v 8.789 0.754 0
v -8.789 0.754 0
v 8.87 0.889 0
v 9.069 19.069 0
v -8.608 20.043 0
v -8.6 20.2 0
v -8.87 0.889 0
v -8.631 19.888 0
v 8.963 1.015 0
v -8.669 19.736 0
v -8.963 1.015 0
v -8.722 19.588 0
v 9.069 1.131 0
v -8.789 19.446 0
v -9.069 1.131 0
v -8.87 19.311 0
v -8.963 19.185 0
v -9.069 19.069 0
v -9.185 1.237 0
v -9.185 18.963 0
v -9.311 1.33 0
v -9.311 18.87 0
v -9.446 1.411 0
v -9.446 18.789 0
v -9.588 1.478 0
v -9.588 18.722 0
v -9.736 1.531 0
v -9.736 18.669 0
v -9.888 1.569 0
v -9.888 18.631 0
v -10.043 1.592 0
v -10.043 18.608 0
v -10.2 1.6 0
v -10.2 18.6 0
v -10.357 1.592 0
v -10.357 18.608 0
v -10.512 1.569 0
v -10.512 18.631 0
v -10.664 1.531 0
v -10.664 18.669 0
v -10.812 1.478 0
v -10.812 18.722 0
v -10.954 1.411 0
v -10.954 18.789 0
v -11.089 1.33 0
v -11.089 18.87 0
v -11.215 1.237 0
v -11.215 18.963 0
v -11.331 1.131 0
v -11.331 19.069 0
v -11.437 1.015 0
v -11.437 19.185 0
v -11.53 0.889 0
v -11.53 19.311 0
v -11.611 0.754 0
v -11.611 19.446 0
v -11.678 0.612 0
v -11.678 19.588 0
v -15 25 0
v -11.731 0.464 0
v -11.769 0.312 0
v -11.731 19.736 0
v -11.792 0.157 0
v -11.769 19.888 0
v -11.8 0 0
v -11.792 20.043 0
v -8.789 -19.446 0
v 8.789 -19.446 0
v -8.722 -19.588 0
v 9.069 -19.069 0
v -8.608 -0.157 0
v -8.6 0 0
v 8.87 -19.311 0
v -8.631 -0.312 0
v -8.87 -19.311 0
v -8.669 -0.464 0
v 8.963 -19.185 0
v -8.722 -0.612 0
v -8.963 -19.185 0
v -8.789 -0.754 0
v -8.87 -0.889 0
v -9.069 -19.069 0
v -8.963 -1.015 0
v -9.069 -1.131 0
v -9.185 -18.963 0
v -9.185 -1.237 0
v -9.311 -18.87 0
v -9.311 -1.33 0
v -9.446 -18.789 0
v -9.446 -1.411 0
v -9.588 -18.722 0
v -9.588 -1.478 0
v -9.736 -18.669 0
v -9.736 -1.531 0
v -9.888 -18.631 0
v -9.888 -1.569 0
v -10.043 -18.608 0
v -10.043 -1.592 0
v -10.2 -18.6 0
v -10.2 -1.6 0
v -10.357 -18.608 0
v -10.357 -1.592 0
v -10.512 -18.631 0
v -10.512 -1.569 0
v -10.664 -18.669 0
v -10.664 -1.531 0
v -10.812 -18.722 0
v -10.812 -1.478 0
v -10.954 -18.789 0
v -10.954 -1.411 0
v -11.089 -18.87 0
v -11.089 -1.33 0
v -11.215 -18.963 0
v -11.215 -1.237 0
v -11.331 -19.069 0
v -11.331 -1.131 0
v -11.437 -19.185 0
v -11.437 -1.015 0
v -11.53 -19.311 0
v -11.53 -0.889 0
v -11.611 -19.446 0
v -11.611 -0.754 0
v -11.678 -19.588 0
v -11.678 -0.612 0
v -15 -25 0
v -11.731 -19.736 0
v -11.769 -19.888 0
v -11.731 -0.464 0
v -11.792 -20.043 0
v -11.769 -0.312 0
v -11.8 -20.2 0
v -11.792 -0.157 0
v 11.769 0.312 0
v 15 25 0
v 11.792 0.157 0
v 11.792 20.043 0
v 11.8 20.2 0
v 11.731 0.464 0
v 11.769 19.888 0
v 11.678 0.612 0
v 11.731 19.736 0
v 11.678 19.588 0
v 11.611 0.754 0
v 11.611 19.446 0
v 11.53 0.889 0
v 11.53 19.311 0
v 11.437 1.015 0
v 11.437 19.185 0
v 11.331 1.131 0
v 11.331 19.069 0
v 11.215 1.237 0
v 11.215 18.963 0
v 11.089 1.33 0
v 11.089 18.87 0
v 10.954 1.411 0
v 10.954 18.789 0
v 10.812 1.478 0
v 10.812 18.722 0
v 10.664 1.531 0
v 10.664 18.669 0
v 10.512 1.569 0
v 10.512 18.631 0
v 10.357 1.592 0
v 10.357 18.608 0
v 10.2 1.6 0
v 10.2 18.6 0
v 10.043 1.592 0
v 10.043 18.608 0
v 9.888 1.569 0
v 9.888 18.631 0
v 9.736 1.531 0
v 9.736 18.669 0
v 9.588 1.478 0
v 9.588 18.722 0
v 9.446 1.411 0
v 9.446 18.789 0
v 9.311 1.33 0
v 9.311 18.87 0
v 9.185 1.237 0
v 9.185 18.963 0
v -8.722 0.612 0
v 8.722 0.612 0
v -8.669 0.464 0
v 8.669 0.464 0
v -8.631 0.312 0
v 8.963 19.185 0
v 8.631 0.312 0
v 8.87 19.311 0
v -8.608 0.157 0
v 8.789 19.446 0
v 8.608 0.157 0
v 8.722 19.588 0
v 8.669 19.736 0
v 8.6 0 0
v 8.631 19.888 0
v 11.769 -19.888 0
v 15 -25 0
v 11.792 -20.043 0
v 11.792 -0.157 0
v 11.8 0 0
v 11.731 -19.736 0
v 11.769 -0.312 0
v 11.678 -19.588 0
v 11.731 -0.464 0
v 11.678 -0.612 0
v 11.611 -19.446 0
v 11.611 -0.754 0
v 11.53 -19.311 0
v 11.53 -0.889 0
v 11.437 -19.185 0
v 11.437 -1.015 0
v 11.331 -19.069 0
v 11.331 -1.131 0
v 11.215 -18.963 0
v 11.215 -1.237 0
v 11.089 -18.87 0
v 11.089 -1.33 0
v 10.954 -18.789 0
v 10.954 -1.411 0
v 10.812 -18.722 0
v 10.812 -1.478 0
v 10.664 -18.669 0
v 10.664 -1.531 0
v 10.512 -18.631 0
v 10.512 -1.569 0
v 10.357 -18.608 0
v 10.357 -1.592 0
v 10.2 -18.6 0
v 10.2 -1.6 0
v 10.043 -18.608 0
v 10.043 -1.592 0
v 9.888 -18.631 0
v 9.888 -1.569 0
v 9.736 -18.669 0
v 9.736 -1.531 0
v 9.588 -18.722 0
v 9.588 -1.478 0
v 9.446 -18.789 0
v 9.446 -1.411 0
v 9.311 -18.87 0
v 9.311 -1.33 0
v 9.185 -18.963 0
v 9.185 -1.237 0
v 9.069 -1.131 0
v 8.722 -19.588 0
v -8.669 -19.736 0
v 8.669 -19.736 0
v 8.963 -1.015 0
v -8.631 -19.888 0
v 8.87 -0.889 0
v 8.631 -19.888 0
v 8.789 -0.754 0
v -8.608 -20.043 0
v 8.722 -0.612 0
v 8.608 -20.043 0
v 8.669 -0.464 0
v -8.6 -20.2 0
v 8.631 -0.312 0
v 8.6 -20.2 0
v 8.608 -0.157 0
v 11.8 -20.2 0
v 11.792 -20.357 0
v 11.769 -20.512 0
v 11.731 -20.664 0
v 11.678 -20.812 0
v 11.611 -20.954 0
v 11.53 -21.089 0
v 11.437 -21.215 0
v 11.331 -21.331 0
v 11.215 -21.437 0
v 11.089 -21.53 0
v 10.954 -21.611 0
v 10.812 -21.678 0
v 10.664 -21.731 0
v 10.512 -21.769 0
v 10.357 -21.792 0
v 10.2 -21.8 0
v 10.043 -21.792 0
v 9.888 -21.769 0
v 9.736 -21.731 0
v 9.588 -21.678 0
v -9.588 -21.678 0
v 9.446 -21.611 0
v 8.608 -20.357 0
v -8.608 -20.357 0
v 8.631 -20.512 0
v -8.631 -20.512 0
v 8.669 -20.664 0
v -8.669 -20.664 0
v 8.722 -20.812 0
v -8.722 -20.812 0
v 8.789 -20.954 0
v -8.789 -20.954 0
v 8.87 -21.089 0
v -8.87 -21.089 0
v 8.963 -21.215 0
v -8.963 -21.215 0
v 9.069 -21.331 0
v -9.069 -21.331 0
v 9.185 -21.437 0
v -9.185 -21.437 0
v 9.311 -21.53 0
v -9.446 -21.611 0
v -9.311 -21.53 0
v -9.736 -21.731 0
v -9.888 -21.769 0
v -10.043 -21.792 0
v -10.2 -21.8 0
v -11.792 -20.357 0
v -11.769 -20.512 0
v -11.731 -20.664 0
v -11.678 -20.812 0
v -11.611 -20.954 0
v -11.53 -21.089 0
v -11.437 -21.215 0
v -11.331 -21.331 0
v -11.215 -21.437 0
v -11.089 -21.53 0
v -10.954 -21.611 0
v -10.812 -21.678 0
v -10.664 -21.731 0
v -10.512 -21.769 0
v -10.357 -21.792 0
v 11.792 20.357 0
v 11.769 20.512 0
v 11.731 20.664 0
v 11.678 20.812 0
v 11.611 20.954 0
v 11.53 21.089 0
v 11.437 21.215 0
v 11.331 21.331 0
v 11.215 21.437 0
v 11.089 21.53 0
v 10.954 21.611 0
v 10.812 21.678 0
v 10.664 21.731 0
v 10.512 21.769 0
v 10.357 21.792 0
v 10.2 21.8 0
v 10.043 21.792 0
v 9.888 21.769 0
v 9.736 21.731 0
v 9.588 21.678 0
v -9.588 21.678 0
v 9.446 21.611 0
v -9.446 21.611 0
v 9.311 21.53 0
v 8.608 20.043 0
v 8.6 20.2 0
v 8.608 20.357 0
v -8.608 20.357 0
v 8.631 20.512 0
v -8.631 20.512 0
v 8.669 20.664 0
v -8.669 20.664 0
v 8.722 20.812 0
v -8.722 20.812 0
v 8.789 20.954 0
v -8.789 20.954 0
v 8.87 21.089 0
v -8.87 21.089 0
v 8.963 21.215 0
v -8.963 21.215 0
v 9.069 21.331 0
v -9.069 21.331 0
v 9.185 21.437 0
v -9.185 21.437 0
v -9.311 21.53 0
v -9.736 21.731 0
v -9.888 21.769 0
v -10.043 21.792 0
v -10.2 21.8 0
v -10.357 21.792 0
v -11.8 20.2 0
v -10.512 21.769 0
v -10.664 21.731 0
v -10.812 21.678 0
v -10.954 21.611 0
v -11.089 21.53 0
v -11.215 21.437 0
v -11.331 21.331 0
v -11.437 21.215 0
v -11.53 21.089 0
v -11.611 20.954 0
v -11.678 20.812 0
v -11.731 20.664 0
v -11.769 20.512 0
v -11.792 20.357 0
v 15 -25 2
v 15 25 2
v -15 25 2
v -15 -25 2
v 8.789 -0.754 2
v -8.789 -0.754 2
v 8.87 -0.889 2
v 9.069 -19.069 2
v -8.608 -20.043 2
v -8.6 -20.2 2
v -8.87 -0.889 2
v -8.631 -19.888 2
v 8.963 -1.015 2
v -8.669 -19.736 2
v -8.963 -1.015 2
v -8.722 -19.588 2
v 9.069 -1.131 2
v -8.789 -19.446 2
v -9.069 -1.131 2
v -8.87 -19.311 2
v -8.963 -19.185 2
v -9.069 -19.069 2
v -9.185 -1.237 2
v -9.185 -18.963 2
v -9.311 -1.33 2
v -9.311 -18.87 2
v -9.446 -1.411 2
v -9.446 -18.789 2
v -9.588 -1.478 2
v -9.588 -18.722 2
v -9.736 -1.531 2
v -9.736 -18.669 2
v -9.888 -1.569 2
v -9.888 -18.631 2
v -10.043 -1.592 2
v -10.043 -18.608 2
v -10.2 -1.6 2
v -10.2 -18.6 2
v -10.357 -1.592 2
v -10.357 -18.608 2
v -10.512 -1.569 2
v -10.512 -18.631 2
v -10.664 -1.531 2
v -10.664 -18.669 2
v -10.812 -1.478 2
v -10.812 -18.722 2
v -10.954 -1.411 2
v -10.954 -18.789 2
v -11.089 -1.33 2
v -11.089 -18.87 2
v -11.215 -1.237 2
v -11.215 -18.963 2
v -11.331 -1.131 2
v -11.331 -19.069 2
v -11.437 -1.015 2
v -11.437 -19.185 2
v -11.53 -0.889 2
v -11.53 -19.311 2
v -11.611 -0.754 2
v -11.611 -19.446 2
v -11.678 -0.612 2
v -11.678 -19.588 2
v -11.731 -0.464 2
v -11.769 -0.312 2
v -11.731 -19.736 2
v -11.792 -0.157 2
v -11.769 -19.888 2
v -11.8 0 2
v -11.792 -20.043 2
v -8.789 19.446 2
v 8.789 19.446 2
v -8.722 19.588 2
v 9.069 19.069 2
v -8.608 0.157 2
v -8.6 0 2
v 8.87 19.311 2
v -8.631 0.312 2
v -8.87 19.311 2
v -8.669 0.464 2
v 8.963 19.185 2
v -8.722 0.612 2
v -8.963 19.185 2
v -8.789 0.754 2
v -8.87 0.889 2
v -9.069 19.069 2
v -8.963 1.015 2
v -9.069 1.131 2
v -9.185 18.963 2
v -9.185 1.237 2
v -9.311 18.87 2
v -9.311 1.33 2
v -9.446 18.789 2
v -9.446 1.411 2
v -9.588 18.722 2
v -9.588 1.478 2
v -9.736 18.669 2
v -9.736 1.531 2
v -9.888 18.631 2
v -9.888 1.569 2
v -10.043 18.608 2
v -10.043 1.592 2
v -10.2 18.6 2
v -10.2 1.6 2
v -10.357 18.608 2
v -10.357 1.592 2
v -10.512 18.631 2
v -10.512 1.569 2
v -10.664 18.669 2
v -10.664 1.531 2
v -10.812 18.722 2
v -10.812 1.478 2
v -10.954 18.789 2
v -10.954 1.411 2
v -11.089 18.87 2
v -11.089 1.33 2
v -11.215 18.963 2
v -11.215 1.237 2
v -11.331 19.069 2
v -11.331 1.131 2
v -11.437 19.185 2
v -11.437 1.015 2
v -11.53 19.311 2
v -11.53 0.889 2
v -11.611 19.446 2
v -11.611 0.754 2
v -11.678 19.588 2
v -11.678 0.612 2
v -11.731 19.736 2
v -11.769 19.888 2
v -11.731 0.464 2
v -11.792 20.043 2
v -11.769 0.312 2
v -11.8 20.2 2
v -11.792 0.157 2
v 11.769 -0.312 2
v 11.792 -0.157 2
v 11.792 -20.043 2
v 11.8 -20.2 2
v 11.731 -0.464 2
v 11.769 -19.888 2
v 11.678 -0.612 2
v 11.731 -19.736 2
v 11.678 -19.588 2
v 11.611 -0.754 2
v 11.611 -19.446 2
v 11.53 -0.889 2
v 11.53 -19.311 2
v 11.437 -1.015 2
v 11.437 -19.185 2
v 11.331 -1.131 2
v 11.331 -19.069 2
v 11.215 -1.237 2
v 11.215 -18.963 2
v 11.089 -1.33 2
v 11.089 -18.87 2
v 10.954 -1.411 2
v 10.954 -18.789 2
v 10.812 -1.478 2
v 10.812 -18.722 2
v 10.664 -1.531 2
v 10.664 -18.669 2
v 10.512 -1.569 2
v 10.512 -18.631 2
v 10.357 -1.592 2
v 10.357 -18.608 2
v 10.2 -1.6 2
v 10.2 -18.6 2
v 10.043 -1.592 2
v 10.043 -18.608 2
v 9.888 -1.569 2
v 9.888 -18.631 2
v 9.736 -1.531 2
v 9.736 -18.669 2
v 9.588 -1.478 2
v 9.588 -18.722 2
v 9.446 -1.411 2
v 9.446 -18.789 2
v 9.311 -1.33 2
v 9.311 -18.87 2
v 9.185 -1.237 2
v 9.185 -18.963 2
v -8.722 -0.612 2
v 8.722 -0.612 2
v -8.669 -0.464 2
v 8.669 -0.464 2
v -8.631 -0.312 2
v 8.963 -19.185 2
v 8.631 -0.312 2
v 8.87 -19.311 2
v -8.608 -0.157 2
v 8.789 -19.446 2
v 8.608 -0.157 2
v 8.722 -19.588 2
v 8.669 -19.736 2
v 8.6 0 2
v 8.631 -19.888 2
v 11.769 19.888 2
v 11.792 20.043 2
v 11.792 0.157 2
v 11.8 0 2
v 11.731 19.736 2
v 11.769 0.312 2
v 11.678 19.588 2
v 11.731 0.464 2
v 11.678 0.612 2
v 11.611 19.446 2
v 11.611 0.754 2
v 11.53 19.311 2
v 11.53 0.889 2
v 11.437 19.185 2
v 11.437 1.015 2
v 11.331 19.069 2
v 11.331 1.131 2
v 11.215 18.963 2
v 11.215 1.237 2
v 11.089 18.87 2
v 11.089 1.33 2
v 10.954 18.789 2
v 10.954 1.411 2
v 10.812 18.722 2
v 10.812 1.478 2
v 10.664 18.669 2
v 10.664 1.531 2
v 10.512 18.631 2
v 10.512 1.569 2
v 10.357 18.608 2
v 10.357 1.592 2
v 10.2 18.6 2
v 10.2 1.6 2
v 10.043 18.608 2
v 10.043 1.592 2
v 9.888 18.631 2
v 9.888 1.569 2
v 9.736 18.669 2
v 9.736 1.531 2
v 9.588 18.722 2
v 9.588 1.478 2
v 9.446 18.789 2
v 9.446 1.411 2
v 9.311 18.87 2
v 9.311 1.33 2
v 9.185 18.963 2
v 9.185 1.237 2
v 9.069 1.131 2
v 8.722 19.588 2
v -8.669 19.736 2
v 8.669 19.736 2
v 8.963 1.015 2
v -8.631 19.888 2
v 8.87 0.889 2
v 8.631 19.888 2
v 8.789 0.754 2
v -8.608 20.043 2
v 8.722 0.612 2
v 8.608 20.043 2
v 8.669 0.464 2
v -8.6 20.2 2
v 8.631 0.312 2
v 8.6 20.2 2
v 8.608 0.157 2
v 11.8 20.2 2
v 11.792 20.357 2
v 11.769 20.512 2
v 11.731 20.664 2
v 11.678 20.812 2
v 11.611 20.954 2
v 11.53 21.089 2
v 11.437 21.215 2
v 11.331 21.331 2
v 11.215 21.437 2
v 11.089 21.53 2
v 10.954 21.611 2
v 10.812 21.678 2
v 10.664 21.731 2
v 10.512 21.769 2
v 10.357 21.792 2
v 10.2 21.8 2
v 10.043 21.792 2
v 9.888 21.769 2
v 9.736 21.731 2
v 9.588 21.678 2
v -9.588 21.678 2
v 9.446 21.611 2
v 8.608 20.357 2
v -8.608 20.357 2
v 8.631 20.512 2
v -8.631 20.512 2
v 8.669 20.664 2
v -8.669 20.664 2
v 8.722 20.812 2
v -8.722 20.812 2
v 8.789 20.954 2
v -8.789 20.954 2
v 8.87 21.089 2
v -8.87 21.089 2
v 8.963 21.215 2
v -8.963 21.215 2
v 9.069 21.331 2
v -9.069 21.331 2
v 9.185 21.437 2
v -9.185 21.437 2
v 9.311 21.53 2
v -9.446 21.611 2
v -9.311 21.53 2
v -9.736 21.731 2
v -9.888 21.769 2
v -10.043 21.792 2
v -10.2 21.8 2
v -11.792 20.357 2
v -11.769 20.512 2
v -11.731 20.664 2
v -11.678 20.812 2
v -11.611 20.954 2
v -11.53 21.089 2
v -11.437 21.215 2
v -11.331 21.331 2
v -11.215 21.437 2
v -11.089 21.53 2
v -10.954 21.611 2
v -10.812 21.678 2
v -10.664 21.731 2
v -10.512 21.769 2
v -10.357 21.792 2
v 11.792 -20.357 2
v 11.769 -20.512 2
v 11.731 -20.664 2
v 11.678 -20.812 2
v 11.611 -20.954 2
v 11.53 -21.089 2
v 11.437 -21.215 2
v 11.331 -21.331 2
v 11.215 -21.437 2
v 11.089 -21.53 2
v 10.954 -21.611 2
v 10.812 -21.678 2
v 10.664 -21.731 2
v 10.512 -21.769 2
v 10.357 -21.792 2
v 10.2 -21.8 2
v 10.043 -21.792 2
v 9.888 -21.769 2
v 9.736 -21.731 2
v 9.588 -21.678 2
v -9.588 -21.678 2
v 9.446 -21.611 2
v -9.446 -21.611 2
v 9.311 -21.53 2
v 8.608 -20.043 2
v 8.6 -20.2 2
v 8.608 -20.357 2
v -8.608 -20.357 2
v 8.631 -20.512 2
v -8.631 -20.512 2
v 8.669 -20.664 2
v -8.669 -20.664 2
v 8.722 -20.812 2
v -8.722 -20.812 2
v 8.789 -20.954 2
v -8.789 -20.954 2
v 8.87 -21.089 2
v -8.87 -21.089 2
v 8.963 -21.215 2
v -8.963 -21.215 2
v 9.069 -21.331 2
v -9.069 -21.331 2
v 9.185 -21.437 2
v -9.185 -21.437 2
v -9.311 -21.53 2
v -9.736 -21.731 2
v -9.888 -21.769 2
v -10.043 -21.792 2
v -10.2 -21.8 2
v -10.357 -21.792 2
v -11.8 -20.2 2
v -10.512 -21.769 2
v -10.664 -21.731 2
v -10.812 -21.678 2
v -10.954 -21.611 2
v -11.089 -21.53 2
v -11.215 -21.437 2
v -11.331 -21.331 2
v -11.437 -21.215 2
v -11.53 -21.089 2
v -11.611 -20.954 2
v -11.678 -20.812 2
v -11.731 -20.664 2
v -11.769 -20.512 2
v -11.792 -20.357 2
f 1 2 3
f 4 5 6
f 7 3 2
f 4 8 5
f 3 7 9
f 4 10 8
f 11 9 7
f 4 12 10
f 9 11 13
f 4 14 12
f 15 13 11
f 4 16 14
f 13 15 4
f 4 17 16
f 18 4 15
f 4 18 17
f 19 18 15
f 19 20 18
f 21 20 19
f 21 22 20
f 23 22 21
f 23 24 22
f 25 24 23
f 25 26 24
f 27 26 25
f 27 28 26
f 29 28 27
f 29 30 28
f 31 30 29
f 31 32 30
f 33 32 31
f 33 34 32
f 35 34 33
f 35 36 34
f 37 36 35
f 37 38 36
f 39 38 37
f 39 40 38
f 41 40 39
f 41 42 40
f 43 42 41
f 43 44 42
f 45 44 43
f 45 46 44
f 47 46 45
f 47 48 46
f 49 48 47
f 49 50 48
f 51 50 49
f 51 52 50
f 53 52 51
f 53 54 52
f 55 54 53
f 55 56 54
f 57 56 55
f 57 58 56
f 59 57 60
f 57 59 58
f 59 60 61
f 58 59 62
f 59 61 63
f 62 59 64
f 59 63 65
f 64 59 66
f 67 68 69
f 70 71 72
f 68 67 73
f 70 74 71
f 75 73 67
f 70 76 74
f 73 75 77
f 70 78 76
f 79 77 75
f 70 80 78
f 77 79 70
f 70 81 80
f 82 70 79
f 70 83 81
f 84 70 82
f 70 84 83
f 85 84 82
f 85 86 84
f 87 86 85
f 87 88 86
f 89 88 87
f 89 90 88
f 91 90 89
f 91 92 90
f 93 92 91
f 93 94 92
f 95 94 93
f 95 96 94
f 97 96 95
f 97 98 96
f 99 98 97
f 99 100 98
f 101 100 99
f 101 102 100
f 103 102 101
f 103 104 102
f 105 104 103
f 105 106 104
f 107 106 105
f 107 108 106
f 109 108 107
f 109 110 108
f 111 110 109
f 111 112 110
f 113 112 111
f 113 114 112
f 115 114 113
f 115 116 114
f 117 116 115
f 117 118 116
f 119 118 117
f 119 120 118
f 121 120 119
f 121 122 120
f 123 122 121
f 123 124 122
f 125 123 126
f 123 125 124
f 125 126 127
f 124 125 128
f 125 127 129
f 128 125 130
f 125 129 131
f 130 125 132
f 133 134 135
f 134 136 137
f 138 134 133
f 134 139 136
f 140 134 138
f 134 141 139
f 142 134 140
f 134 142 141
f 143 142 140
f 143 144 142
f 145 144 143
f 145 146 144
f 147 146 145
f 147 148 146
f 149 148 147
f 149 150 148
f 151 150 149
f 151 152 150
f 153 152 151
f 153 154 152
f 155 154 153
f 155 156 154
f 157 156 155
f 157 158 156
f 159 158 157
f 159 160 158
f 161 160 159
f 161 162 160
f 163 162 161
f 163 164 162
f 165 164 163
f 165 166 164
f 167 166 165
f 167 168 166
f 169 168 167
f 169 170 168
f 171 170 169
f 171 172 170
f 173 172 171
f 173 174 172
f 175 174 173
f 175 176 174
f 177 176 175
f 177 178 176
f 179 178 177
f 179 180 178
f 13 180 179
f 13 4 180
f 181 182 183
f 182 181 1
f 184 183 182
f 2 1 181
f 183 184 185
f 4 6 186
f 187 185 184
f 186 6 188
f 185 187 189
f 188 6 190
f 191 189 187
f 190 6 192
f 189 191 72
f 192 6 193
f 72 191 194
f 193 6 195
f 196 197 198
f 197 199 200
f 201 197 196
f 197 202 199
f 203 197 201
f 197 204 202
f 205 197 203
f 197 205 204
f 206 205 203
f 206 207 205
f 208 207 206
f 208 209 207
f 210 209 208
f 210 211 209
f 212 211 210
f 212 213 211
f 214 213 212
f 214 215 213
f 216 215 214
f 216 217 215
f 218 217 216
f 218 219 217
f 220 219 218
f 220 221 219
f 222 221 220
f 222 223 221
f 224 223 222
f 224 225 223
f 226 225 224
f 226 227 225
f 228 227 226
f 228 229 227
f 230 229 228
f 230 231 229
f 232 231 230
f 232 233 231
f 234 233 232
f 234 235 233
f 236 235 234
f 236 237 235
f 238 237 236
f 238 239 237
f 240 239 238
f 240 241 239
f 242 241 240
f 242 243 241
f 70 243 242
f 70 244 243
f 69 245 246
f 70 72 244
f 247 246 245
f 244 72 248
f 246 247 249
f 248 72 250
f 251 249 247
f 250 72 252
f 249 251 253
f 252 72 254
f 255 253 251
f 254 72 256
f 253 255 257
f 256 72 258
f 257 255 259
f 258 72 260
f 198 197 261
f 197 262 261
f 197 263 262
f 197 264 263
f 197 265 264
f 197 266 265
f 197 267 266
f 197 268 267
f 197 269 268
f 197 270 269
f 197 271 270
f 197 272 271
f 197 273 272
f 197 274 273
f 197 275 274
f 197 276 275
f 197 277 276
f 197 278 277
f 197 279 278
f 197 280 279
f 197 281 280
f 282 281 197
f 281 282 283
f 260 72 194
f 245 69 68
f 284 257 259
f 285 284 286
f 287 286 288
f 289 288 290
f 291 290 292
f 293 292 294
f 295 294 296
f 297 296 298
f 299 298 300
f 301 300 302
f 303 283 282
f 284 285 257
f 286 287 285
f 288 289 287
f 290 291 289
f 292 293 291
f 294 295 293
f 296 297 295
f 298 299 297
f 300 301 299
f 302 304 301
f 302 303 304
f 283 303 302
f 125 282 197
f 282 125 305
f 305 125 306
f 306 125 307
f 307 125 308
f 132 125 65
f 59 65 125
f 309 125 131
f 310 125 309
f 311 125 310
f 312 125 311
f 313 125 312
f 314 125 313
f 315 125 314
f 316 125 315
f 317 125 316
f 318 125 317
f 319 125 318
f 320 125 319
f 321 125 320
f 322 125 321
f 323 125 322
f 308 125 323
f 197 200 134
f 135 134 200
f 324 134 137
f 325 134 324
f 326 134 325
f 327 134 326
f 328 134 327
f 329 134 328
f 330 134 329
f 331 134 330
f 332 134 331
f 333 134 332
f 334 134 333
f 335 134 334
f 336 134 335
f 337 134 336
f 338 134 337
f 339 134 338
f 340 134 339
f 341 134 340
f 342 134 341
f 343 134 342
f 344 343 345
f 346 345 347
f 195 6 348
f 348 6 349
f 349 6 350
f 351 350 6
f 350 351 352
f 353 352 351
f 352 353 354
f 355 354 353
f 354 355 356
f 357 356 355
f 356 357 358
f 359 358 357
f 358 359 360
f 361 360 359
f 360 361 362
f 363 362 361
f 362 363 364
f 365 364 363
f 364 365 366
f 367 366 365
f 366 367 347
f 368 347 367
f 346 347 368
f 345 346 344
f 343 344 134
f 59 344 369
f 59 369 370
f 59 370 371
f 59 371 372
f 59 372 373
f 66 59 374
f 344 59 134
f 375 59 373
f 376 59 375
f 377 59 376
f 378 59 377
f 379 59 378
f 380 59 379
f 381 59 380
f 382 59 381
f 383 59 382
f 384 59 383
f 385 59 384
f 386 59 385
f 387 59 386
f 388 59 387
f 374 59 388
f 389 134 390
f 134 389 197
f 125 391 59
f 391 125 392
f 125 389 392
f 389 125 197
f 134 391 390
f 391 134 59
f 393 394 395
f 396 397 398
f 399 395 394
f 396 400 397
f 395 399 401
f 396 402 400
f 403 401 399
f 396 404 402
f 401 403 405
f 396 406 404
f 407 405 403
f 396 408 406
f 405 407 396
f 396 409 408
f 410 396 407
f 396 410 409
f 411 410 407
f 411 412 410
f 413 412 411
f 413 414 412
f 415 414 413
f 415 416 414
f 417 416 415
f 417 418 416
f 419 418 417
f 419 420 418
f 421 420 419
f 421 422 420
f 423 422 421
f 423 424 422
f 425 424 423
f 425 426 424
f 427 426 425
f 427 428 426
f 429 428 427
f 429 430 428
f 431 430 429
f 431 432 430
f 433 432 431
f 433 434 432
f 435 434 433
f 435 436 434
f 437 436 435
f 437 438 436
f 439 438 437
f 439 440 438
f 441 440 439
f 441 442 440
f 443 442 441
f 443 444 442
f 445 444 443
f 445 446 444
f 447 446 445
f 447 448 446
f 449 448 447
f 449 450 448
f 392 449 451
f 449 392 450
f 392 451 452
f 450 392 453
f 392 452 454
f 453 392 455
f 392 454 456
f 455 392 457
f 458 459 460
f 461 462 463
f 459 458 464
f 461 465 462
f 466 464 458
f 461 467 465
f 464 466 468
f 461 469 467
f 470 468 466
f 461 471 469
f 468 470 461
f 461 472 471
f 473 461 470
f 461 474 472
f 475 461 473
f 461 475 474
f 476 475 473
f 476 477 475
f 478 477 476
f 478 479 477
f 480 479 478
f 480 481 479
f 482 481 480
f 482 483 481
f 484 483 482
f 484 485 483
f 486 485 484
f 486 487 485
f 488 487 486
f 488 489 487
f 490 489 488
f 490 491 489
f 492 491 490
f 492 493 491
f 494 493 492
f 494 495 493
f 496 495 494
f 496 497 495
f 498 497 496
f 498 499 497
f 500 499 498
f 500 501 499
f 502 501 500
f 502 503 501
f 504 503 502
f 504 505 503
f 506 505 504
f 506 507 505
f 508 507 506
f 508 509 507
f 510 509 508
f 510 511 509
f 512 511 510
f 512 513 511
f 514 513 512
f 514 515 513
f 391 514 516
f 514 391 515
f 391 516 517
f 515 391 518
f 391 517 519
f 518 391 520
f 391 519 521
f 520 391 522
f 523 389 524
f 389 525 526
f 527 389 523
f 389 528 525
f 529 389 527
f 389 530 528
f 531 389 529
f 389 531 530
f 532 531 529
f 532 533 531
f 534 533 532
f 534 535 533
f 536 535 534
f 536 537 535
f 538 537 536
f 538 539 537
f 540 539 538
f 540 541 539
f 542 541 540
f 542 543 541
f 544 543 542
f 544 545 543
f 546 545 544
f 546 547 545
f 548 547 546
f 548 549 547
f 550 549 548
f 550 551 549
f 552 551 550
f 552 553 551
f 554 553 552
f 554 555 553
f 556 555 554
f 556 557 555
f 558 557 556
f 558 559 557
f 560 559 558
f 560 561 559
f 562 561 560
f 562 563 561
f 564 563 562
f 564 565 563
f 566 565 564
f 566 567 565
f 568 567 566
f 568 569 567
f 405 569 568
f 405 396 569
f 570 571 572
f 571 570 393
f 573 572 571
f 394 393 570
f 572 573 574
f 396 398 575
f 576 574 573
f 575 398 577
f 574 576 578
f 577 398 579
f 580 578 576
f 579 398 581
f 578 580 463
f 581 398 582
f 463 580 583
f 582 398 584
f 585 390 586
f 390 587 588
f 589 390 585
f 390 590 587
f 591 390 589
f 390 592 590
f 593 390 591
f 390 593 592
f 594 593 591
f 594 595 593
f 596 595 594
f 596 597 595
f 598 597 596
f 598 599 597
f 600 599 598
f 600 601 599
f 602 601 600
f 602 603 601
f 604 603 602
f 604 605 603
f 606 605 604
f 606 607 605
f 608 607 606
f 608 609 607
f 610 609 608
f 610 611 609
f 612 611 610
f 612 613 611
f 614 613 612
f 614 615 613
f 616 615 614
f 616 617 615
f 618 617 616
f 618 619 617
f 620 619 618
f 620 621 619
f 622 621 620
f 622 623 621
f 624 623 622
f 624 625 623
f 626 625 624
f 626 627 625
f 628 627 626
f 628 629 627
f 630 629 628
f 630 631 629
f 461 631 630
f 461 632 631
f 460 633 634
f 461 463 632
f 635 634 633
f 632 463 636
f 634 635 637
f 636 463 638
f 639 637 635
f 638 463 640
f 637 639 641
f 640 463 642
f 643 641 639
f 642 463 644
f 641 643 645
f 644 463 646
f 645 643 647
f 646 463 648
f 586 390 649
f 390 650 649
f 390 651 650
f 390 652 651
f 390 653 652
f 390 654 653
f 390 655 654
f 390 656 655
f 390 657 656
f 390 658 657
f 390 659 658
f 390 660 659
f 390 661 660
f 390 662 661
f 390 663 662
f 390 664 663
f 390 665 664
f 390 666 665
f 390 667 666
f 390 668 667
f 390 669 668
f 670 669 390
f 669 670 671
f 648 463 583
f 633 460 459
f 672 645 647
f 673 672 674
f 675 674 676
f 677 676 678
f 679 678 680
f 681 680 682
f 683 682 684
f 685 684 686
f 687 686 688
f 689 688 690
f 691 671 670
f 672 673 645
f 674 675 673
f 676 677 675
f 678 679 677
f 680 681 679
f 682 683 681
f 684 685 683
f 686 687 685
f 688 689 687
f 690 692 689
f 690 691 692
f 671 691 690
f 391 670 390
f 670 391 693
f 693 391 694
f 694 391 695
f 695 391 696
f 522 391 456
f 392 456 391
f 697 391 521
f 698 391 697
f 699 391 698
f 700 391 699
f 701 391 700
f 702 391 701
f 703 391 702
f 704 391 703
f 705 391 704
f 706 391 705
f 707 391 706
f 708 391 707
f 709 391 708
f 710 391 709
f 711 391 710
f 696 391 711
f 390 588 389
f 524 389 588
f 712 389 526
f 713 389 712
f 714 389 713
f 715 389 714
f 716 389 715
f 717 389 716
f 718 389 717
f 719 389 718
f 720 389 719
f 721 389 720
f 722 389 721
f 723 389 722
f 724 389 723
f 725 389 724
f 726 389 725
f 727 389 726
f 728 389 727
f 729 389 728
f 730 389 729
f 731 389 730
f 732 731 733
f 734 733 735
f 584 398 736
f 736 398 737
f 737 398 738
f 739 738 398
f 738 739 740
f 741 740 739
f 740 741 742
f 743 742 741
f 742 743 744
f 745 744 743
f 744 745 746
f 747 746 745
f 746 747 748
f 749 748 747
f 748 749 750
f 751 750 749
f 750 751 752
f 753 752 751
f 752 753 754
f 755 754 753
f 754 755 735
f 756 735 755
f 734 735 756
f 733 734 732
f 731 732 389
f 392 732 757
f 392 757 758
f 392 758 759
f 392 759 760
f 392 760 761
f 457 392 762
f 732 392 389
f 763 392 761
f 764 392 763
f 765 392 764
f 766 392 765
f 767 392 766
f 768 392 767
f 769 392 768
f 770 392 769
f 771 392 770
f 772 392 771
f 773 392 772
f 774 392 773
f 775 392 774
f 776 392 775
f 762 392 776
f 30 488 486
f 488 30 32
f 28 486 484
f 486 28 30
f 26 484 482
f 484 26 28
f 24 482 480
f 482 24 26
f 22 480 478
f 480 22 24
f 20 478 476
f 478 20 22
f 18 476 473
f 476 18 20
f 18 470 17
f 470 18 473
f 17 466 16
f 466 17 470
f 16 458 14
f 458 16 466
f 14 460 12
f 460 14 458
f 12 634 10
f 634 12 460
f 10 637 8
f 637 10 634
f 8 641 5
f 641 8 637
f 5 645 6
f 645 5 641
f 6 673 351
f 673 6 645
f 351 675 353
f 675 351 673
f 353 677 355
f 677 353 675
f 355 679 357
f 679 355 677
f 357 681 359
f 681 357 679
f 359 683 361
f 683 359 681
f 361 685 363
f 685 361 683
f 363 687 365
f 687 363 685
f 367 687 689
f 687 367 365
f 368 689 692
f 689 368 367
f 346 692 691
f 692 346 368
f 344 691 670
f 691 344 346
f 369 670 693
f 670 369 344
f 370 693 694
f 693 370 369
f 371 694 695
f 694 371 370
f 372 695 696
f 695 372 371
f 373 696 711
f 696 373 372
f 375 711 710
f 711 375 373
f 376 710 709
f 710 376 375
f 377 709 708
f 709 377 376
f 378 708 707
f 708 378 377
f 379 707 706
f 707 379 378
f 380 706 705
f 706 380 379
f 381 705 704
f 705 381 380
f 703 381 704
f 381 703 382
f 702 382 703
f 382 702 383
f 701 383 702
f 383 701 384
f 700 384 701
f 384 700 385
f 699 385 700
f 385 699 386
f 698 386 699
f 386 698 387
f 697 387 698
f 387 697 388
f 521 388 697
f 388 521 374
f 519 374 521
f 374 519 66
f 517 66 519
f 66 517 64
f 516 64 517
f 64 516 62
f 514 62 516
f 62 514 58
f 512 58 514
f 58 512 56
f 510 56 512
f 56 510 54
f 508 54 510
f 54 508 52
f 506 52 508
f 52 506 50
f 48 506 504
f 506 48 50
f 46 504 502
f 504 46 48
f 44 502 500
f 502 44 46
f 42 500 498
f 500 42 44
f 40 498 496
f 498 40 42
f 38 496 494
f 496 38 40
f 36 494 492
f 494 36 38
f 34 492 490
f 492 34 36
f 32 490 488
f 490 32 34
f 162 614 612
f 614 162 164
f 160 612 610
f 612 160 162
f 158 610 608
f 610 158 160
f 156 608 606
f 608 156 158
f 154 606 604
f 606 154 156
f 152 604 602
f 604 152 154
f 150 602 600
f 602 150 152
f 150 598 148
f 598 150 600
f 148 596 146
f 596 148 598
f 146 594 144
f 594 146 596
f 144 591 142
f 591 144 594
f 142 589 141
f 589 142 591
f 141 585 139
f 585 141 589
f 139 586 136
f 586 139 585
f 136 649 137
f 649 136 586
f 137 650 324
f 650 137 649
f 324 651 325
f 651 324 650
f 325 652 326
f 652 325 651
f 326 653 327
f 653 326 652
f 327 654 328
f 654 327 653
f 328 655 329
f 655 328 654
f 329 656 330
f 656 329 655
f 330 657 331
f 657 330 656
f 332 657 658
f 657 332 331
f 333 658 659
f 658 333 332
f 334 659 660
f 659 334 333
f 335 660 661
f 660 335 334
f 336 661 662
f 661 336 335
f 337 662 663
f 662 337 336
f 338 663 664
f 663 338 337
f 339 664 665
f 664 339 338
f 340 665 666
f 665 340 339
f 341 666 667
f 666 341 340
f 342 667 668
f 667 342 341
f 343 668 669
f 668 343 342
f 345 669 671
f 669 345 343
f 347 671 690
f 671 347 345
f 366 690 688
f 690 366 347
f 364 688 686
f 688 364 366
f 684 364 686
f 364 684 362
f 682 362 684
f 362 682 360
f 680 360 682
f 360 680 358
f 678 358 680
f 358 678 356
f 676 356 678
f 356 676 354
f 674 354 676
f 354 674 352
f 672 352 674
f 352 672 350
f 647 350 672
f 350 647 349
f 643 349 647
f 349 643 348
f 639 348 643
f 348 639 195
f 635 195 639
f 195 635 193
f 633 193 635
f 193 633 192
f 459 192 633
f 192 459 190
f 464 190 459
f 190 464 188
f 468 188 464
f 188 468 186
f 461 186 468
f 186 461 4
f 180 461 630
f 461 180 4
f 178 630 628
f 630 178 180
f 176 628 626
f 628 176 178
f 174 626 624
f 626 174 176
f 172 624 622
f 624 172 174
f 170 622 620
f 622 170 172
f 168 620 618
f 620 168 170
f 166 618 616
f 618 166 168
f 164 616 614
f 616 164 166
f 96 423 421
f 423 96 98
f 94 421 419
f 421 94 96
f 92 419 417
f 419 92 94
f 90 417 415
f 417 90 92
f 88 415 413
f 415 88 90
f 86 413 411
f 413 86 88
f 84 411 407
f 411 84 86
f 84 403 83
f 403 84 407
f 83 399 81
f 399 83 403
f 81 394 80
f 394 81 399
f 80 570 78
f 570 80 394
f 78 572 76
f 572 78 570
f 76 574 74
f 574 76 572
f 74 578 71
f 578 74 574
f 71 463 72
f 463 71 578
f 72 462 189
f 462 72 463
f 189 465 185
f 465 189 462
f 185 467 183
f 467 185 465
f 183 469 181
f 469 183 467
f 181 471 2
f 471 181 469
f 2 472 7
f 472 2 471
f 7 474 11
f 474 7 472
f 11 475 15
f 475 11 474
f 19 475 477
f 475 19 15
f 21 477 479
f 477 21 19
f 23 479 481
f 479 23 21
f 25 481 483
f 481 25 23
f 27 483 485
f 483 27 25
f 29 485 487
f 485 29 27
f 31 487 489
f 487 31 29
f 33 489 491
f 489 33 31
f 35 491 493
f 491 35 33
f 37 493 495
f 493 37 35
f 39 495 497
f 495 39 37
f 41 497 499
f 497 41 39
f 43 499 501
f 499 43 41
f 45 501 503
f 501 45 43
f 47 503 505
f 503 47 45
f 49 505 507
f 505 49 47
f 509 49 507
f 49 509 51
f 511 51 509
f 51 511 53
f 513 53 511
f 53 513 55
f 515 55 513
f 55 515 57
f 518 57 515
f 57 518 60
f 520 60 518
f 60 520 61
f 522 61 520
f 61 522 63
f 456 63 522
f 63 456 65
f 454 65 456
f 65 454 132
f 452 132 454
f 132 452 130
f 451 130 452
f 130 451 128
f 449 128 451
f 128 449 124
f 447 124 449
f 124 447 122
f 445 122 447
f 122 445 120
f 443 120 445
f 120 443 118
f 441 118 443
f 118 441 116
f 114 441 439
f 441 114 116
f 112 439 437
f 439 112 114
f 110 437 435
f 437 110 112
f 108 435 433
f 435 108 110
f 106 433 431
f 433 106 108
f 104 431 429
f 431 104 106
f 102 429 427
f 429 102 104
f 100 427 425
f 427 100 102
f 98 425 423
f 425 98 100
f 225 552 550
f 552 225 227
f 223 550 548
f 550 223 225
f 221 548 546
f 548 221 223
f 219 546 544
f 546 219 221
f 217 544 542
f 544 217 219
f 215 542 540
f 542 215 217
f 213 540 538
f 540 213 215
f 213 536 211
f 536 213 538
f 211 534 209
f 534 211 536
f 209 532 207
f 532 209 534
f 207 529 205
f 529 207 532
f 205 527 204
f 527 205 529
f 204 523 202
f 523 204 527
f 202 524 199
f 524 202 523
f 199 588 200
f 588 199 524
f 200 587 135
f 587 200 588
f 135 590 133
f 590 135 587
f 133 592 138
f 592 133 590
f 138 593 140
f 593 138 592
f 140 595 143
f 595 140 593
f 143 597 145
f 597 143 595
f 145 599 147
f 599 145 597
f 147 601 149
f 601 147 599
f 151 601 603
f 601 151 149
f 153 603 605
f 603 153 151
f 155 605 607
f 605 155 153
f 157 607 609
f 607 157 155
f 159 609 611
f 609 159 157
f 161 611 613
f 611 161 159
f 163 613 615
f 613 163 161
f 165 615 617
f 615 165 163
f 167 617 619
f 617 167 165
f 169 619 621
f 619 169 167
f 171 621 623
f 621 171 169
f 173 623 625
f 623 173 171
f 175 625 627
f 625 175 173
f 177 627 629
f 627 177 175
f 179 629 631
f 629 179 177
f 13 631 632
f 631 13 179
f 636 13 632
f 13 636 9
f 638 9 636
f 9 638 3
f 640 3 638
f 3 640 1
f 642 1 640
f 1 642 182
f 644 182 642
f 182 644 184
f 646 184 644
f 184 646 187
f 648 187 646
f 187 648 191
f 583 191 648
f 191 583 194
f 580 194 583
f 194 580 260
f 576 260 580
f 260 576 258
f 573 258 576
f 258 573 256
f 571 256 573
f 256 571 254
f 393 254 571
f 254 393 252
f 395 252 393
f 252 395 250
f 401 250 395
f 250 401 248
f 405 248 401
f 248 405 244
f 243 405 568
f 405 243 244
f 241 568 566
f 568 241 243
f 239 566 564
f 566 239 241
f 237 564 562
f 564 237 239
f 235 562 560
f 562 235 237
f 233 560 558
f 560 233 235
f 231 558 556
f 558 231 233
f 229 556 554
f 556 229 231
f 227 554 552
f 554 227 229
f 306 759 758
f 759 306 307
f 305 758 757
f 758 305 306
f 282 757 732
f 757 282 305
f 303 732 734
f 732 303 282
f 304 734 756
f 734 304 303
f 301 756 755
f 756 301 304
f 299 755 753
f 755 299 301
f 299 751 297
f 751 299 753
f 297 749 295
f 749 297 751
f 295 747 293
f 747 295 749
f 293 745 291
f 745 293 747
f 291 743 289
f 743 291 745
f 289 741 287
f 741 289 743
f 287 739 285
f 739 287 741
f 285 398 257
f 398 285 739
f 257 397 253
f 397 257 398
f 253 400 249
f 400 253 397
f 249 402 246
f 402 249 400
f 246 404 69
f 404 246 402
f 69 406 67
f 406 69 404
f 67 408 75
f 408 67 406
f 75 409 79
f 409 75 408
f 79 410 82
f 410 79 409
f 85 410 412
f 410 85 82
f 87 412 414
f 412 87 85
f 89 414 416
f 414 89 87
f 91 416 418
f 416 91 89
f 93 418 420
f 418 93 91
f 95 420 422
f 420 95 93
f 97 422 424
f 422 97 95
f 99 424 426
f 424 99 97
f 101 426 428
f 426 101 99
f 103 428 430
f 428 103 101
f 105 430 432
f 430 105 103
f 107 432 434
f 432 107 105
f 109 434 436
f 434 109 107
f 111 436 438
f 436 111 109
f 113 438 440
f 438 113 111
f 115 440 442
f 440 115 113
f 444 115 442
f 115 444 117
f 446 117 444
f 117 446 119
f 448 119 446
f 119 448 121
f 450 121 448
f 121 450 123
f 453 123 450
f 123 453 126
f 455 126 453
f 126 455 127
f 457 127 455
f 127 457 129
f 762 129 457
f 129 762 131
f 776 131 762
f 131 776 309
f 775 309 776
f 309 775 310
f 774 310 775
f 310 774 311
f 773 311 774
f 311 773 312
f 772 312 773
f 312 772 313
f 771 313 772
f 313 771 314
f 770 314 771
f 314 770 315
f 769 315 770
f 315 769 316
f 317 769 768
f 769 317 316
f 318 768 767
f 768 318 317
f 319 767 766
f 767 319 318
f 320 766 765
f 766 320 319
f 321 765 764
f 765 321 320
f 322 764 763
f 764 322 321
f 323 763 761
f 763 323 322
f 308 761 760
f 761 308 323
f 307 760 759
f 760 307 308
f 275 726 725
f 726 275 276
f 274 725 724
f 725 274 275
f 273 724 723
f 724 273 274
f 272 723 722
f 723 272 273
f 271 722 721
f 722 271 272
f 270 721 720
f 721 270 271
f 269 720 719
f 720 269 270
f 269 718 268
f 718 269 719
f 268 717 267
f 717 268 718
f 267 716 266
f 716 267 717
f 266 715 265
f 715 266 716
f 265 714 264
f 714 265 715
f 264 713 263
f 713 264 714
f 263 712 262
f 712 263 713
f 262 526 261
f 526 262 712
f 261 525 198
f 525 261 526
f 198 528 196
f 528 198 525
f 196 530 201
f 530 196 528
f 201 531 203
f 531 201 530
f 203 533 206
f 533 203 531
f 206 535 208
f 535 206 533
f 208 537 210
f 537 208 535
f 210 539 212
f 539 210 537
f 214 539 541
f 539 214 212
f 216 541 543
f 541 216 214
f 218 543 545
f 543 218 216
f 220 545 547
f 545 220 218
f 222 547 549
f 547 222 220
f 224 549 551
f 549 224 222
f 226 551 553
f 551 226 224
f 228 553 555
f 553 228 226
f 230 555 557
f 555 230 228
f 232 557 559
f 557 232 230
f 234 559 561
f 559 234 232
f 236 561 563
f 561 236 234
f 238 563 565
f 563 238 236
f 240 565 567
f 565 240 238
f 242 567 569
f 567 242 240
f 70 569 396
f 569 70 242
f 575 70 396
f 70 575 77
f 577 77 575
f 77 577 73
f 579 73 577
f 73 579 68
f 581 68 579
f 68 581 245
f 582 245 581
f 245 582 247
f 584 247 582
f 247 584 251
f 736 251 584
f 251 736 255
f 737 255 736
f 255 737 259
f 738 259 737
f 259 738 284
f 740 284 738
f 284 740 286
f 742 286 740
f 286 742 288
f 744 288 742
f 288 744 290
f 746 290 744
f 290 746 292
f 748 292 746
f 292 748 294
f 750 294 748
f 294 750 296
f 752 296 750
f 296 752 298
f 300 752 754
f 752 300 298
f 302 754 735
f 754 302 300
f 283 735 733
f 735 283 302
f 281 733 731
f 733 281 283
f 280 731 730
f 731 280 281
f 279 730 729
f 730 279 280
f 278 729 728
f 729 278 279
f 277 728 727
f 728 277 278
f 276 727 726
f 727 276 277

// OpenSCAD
$fn = 64;

length = 50.00;
width = 30.00;
height = 2.00;

hole = 1.60;
hole_spacer = hole * 4;

module grid(x, y, width, height, center = true)
{
    x_space = width / (x - 1);
    y_space = height / (y - 1);
    translate(center ? [-(x_space * (x - 1))/2, -(y_space * (y - 1))/2, 0] : [0, 0, 0])
        for (i = [0:x_space:(x - 1) * x_space]) {
            for (j = [0:y_space:(y - 1) * y_space]) {
                translate([i, j, 0]) {
                    children();
                }
            }
        }
}

difference() {
    linear_extrude(height)
        square([width, length], center = true);
    
    linear_extrude(height)
        grid(2, 3, width - (hole * 2) - hole_spacer, length - (hole * 2) - hole_spacer)
            circle(r = hole);
}
